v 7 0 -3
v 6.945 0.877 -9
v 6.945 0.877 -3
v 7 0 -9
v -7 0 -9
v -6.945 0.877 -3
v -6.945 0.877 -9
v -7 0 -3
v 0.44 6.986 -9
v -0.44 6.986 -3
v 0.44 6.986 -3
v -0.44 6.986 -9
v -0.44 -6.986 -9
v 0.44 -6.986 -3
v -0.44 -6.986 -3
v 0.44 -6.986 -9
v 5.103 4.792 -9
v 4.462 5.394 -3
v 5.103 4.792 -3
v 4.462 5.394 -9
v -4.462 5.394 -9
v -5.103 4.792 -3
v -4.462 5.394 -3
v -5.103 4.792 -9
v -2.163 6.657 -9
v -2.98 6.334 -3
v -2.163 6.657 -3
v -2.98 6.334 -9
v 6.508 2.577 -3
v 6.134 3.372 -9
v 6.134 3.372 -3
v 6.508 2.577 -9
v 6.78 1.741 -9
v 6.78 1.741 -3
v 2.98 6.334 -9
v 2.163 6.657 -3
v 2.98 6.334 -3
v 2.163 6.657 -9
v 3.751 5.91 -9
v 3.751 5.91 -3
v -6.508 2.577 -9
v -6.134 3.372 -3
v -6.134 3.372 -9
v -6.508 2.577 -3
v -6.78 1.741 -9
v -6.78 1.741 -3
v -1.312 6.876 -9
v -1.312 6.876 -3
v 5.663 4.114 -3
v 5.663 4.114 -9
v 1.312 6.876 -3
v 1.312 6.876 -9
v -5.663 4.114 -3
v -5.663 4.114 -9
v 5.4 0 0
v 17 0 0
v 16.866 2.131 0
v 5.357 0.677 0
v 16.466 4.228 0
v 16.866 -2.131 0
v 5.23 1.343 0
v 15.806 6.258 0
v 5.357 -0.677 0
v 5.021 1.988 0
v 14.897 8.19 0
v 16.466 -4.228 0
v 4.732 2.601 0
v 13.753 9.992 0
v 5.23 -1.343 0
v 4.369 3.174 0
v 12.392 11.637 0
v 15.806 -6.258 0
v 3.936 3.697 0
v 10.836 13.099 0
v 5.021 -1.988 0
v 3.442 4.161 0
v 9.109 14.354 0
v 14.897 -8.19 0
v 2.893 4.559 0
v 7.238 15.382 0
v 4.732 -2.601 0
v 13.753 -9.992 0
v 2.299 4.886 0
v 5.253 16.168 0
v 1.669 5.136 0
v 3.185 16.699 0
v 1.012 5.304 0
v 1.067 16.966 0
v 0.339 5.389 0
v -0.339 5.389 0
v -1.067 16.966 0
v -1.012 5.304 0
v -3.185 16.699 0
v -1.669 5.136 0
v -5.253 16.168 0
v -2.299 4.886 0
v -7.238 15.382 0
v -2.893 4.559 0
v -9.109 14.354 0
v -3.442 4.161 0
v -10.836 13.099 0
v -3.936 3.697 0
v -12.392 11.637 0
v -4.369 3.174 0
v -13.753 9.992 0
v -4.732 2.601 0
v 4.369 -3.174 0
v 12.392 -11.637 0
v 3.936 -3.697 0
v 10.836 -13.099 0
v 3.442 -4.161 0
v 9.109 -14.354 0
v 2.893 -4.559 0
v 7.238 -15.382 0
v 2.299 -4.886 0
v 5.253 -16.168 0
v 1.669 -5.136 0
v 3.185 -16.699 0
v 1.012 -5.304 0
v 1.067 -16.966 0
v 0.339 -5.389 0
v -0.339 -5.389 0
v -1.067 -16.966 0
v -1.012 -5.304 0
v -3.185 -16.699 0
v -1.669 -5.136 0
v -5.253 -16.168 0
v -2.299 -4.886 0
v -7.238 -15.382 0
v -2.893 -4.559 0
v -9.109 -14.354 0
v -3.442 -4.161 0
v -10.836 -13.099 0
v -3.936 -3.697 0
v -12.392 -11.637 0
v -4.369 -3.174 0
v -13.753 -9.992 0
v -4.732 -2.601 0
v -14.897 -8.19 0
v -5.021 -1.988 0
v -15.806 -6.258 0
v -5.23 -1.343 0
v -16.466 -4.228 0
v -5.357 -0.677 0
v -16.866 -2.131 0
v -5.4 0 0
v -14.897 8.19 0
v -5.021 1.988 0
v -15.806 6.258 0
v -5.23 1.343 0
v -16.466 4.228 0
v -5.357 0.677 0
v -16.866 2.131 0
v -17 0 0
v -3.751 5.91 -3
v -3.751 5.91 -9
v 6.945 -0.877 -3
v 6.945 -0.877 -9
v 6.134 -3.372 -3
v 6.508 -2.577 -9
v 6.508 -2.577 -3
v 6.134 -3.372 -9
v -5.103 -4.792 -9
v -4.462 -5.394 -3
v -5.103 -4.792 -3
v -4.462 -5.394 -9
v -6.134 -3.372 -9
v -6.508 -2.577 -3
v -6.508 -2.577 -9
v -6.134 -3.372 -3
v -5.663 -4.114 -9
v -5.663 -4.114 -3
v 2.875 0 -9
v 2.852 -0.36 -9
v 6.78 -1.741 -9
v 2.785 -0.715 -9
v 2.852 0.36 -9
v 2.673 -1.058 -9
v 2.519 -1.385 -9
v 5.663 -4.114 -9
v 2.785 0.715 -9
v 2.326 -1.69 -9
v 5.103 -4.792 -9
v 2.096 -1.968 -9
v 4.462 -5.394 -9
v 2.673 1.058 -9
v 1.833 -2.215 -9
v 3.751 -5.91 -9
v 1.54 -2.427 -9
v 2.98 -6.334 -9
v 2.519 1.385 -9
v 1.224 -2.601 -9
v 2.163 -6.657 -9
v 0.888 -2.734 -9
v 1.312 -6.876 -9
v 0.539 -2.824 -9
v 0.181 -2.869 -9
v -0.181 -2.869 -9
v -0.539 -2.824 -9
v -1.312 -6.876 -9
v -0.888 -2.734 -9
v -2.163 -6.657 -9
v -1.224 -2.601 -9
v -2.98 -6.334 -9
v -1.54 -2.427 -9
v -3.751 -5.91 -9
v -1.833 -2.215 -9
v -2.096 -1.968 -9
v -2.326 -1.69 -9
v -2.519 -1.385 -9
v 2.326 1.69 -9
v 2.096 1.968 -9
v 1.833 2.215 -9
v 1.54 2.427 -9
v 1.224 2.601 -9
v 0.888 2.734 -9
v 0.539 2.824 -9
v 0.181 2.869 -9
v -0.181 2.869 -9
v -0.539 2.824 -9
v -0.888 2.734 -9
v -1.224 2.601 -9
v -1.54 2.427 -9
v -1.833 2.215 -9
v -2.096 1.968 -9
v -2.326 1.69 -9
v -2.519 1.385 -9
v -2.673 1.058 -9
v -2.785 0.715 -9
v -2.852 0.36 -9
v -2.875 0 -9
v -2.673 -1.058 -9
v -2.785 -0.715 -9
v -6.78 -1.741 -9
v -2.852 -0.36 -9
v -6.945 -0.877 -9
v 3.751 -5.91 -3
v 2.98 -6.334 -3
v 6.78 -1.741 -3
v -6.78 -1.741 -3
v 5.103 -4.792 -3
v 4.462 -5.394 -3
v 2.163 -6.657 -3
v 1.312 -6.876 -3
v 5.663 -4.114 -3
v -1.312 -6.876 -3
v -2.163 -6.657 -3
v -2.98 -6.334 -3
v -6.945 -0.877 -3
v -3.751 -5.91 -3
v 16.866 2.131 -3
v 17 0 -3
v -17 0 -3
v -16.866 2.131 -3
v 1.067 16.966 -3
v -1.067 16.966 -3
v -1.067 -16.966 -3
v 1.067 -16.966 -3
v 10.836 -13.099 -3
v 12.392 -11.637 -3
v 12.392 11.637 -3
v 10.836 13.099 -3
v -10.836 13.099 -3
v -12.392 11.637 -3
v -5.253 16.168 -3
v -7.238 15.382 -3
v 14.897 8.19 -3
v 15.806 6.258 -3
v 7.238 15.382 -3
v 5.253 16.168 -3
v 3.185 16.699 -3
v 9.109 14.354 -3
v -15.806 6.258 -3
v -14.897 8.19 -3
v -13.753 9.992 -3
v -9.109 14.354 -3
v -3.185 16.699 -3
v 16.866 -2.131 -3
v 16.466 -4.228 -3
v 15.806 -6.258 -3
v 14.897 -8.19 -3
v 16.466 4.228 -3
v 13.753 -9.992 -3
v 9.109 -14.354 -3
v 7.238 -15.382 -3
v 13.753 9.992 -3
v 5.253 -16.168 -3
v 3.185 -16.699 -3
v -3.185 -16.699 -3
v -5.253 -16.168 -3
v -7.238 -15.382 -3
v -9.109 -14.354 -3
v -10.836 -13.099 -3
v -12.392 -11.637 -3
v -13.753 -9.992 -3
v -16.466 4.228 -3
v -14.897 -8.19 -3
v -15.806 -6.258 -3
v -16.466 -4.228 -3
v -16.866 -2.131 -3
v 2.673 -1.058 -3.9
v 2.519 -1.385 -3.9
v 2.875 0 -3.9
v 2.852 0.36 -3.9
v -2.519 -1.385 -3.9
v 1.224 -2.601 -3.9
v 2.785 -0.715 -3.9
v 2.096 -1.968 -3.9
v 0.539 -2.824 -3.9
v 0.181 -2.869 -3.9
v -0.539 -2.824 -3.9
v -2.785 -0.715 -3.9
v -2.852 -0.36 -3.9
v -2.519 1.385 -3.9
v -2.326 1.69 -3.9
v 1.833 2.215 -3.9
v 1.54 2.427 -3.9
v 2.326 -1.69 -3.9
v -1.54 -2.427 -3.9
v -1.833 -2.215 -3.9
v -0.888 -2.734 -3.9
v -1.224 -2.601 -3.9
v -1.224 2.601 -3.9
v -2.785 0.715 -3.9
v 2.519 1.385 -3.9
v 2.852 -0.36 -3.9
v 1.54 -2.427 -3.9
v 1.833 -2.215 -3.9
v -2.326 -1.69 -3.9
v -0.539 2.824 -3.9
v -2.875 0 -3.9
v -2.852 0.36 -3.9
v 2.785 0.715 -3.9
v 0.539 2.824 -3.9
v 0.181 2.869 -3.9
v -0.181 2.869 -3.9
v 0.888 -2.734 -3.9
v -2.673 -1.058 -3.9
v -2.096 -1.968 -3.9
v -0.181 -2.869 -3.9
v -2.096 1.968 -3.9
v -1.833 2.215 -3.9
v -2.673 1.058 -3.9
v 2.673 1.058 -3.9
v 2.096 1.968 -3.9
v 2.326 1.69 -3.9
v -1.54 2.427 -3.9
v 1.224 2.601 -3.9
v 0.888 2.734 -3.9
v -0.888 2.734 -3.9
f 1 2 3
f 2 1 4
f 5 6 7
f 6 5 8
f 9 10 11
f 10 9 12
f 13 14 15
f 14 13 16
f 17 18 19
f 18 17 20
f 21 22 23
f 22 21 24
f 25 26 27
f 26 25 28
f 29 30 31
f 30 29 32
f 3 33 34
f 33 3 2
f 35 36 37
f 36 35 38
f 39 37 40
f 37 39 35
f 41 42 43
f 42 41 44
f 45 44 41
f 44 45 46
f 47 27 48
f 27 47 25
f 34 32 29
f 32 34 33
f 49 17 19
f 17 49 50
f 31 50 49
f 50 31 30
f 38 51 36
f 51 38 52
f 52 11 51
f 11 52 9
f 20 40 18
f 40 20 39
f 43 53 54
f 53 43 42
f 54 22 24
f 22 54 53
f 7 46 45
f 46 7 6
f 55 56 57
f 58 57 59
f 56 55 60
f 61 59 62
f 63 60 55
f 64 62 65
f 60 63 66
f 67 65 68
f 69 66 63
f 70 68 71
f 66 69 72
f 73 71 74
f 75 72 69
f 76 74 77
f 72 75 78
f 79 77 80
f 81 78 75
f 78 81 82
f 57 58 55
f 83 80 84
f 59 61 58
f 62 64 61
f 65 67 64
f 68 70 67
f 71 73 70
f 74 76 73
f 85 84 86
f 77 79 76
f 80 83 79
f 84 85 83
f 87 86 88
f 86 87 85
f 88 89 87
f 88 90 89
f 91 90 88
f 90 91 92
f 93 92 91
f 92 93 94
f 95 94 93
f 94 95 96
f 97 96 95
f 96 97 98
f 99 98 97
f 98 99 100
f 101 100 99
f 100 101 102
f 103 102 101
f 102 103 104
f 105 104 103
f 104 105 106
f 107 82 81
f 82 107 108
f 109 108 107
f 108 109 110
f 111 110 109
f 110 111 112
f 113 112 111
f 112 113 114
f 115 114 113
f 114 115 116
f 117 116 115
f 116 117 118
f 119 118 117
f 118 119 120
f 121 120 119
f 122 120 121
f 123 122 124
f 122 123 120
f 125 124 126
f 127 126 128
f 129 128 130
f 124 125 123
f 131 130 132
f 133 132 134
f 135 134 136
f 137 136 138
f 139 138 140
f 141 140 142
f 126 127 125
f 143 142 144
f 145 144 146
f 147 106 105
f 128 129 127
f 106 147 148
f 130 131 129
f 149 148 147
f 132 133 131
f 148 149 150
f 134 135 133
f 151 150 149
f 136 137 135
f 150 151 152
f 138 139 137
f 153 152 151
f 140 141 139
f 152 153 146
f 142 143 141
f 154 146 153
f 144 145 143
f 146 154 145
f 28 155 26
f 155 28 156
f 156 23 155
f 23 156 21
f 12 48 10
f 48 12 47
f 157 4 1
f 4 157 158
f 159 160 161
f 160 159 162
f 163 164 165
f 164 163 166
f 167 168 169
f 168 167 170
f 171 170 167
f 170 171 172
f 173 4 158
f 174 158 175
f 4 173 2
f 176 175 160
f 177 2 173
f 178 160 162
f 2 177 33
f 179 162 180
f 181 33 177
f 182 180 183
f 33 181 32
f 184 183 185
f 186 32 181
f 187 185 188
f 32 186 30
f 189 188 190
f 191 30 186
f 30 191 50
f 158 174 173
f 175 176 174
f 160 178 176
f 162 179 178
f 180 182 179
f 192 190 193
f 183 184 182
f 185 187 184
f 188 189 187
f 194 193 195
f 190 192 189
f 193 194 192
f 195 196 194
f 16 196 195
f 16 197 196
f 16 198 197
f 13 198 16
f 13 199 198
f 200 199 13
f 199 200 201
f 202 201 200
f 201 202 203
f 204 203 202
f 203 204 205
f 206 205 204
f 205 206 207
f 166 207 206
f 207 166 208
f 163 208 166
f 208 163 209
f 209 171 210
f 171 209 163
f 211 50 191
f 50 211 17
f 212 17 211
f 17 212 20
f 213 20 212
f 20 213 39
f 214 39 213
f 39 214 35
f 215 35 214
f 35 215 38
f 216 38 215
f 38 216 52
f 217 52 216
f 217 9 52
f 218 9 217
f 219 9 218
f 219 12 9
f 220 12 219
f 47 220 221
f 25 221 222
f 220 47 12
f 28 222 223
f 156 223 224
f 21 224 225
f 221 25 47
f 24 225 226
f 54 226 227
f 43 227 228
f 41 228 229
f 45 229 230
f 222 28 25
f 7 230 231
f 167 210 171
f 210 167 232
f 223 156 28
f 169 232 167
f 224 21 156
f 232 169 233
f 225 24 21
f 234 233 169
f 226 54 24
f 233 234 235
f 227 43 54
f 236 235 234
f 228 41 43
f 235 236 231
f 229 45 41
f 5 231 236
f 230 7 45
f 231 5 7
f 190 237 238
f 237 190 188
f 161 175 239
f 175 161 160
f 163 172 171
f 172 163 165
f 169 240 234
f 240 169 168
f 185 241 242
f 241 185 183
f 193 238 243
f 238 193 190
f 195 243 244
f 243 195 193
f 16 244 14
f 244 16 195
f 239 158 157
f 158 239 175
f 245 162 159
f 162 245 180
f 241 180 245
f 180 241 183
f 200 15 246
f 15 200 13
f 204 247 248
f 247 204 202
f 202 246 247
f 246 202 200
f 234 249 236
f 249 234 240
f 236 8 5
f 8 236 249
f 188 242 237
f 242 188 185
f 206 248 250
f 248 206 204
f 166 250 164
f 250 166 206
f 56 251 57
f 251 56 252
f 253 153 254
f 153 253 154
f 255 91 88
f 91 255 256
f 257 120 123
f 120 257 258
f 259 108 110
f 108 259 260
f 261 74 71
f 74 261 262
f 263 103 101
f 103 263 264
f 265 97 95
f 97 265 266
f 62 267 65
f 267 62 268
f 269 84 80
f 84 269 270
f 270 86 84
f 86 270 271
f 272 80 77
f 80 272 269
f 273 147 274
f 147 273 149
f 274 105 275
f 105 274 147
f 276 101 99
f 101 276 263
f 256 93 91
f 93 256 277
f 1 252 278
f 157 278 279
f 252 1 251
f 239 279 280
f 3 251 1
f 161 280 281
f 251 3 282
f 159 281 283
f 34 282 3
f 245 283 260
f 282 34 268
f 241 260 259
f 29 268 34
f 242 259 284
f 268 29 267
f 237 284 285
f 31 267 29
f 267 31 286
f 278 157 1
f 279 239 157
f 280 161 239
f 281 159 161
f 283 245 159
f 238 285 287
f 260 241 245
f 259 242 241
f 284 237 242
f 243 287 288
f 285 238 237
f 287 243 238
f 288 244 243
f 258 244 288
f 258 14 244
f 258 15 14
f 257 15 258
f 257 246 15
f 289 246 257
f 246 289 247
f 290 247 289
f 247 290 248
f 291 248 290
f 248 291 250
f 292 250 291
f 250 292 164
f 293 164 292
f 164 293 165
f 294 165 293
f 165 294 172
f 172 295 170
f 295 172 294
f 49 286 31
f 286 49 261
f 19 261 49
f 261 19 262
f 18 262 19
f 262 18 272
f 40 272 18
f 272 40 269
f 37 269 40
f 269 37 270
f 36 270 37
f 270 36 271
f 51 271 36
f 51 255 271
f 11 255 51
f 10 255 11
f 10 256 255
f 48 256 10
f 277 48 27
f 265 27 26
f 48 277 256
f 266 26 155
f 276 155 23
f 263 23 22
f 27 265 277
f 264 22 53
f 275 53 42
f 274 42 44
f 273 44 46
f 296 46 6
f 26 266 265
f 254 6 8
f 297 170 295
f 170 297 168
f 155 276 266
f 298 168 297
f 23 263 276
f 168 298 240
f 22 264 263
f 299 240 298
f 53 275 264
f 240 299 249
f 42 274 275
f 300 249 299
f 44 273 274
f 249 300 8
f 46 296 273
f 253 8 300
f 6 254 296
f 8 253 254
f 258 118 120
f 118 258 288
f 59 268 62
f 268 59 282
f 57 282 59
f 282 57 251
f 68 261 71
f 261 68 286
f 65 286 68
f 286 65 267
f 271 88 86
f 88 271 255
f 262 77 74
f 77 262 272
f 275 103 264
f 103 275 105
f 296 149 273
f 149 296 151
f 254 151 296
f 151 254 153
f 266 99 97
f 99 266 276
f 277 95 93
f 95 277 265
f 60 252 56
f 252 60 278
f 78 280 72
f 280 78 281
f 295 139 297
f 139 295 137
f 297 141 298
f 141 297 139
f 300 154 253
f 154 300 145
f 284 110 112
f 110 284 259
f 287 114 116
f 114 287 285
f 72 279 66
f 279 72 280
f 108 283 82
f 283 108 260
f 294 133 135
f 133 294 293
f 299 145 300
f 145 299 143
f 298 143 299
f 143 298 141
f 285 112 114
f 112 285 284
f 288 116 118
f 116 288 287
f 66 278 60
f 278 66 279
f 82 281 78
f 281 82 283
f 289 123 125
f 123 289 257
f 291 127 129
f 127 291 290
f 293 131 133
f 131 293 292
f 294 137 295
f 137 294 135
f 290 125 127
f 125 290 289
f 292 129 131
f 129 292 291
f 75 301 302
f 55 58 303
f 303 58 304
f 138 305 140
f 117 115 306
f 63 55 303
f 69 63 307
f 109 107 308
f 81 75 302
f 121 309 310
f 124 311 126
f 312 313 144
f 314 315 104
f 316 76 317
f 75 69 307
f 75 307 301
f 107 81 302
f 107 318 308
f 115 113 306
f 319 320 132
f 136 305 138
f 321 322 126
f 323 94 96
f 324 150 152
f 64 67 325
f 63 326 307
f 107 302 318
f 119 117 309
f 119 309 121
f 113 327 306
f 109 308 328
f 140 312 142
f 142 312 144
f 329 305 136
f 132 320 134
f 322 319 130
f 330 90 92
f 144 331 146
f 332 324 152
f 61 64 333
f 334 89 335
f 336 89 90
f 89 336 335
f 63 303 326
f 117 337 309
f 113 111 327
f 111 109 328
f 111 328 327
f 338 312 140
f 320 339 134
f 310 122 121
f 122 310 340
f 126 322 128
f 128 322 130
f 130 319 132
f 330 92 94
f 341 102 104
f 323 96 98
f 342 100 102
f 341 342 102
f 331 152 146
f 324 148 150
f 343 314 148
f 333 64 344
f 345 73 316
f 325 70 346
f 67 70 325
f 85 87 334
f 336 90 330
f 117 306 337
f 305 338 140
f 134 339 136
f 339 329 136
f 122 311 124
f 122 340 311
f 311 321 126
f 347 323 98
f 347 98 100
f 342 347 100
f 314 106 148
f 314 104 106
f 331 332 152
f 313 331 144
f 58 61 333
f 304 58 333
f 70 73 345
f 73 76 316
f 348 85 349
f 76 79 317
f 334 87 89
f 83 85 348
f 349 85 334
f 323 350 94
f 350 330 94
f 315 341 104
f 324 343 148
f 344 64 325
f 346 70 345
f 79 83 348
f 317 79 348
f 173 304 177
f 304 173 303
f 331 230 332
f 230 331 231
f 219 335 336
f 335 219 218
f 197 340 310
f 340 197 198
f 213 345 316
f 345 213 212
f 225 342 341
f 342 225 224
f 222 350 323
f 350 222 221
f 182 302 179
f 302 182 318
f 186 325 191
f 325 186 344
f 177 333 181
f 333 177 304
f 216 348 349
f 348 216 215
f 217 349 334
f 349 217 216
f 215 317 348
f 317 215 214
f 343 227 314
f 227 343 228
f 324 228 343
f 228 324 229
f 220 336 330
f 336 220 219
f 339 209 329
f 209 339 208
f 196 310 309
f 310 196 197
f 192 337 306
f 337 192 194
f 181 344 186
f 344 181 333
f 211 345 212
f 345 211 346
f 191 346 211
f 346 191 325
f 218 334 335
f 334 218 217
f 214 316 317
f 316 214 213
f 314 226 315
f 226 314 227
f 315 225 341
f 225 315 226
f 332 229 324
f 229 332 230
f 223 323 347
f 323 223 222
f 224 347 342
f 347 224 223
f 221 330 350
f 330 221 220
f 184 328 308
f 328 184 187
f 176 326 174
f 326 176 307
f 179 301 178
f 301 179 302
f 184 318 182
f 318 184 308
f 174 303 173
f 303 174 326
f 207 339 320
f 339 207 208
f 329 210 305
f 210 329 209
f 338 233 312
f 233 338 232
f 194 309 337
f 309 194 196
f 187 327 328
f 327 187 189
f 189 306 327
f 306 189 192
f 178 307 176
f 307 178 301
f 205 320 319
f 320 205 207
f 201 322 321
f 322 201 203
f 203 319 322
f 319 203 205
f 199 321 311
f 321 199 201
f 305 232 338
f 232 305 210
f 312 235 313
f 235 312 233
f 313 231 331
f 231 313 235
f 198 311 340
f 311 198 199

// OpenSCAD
$fn = 50;


difference() {
	union() {
		translate(v = [0, 0, -9.0000000000]) {
			cylinder(h = 9, r = 7.0000000000);
		}
		translate(v = [0, 0, -3.0000000000]) {
			cylinder(h = 3, r = 17.0000000000);
		}
	}
	union() {
		translate(v = [0, 0, 0]) {
			rotate(a = [0, 0, 0]) {
				difference() {
					union() {
						#translate(v = [0, 0, -9.0000000000]) {
							cylinder(h = 9, r = 2.6000000000);
						}
						#translate(v = [0, 0, -3.9000000000]) {
							cylinder(h = 3.9000000000, r1 = 2.8750000000, r2 = 5.4000000000);
						}
						#translate(v = [0, 0, -9.0000000000]) {
							cylinder(h = 9, r = 2.8750000000);
						}
						#translate(v = [0, 0, -9.0000000000]) {
							cylinder(h = 9, r = 2.6000000000);
						}
					}
					union();
				}
			}
		}
	}
}
